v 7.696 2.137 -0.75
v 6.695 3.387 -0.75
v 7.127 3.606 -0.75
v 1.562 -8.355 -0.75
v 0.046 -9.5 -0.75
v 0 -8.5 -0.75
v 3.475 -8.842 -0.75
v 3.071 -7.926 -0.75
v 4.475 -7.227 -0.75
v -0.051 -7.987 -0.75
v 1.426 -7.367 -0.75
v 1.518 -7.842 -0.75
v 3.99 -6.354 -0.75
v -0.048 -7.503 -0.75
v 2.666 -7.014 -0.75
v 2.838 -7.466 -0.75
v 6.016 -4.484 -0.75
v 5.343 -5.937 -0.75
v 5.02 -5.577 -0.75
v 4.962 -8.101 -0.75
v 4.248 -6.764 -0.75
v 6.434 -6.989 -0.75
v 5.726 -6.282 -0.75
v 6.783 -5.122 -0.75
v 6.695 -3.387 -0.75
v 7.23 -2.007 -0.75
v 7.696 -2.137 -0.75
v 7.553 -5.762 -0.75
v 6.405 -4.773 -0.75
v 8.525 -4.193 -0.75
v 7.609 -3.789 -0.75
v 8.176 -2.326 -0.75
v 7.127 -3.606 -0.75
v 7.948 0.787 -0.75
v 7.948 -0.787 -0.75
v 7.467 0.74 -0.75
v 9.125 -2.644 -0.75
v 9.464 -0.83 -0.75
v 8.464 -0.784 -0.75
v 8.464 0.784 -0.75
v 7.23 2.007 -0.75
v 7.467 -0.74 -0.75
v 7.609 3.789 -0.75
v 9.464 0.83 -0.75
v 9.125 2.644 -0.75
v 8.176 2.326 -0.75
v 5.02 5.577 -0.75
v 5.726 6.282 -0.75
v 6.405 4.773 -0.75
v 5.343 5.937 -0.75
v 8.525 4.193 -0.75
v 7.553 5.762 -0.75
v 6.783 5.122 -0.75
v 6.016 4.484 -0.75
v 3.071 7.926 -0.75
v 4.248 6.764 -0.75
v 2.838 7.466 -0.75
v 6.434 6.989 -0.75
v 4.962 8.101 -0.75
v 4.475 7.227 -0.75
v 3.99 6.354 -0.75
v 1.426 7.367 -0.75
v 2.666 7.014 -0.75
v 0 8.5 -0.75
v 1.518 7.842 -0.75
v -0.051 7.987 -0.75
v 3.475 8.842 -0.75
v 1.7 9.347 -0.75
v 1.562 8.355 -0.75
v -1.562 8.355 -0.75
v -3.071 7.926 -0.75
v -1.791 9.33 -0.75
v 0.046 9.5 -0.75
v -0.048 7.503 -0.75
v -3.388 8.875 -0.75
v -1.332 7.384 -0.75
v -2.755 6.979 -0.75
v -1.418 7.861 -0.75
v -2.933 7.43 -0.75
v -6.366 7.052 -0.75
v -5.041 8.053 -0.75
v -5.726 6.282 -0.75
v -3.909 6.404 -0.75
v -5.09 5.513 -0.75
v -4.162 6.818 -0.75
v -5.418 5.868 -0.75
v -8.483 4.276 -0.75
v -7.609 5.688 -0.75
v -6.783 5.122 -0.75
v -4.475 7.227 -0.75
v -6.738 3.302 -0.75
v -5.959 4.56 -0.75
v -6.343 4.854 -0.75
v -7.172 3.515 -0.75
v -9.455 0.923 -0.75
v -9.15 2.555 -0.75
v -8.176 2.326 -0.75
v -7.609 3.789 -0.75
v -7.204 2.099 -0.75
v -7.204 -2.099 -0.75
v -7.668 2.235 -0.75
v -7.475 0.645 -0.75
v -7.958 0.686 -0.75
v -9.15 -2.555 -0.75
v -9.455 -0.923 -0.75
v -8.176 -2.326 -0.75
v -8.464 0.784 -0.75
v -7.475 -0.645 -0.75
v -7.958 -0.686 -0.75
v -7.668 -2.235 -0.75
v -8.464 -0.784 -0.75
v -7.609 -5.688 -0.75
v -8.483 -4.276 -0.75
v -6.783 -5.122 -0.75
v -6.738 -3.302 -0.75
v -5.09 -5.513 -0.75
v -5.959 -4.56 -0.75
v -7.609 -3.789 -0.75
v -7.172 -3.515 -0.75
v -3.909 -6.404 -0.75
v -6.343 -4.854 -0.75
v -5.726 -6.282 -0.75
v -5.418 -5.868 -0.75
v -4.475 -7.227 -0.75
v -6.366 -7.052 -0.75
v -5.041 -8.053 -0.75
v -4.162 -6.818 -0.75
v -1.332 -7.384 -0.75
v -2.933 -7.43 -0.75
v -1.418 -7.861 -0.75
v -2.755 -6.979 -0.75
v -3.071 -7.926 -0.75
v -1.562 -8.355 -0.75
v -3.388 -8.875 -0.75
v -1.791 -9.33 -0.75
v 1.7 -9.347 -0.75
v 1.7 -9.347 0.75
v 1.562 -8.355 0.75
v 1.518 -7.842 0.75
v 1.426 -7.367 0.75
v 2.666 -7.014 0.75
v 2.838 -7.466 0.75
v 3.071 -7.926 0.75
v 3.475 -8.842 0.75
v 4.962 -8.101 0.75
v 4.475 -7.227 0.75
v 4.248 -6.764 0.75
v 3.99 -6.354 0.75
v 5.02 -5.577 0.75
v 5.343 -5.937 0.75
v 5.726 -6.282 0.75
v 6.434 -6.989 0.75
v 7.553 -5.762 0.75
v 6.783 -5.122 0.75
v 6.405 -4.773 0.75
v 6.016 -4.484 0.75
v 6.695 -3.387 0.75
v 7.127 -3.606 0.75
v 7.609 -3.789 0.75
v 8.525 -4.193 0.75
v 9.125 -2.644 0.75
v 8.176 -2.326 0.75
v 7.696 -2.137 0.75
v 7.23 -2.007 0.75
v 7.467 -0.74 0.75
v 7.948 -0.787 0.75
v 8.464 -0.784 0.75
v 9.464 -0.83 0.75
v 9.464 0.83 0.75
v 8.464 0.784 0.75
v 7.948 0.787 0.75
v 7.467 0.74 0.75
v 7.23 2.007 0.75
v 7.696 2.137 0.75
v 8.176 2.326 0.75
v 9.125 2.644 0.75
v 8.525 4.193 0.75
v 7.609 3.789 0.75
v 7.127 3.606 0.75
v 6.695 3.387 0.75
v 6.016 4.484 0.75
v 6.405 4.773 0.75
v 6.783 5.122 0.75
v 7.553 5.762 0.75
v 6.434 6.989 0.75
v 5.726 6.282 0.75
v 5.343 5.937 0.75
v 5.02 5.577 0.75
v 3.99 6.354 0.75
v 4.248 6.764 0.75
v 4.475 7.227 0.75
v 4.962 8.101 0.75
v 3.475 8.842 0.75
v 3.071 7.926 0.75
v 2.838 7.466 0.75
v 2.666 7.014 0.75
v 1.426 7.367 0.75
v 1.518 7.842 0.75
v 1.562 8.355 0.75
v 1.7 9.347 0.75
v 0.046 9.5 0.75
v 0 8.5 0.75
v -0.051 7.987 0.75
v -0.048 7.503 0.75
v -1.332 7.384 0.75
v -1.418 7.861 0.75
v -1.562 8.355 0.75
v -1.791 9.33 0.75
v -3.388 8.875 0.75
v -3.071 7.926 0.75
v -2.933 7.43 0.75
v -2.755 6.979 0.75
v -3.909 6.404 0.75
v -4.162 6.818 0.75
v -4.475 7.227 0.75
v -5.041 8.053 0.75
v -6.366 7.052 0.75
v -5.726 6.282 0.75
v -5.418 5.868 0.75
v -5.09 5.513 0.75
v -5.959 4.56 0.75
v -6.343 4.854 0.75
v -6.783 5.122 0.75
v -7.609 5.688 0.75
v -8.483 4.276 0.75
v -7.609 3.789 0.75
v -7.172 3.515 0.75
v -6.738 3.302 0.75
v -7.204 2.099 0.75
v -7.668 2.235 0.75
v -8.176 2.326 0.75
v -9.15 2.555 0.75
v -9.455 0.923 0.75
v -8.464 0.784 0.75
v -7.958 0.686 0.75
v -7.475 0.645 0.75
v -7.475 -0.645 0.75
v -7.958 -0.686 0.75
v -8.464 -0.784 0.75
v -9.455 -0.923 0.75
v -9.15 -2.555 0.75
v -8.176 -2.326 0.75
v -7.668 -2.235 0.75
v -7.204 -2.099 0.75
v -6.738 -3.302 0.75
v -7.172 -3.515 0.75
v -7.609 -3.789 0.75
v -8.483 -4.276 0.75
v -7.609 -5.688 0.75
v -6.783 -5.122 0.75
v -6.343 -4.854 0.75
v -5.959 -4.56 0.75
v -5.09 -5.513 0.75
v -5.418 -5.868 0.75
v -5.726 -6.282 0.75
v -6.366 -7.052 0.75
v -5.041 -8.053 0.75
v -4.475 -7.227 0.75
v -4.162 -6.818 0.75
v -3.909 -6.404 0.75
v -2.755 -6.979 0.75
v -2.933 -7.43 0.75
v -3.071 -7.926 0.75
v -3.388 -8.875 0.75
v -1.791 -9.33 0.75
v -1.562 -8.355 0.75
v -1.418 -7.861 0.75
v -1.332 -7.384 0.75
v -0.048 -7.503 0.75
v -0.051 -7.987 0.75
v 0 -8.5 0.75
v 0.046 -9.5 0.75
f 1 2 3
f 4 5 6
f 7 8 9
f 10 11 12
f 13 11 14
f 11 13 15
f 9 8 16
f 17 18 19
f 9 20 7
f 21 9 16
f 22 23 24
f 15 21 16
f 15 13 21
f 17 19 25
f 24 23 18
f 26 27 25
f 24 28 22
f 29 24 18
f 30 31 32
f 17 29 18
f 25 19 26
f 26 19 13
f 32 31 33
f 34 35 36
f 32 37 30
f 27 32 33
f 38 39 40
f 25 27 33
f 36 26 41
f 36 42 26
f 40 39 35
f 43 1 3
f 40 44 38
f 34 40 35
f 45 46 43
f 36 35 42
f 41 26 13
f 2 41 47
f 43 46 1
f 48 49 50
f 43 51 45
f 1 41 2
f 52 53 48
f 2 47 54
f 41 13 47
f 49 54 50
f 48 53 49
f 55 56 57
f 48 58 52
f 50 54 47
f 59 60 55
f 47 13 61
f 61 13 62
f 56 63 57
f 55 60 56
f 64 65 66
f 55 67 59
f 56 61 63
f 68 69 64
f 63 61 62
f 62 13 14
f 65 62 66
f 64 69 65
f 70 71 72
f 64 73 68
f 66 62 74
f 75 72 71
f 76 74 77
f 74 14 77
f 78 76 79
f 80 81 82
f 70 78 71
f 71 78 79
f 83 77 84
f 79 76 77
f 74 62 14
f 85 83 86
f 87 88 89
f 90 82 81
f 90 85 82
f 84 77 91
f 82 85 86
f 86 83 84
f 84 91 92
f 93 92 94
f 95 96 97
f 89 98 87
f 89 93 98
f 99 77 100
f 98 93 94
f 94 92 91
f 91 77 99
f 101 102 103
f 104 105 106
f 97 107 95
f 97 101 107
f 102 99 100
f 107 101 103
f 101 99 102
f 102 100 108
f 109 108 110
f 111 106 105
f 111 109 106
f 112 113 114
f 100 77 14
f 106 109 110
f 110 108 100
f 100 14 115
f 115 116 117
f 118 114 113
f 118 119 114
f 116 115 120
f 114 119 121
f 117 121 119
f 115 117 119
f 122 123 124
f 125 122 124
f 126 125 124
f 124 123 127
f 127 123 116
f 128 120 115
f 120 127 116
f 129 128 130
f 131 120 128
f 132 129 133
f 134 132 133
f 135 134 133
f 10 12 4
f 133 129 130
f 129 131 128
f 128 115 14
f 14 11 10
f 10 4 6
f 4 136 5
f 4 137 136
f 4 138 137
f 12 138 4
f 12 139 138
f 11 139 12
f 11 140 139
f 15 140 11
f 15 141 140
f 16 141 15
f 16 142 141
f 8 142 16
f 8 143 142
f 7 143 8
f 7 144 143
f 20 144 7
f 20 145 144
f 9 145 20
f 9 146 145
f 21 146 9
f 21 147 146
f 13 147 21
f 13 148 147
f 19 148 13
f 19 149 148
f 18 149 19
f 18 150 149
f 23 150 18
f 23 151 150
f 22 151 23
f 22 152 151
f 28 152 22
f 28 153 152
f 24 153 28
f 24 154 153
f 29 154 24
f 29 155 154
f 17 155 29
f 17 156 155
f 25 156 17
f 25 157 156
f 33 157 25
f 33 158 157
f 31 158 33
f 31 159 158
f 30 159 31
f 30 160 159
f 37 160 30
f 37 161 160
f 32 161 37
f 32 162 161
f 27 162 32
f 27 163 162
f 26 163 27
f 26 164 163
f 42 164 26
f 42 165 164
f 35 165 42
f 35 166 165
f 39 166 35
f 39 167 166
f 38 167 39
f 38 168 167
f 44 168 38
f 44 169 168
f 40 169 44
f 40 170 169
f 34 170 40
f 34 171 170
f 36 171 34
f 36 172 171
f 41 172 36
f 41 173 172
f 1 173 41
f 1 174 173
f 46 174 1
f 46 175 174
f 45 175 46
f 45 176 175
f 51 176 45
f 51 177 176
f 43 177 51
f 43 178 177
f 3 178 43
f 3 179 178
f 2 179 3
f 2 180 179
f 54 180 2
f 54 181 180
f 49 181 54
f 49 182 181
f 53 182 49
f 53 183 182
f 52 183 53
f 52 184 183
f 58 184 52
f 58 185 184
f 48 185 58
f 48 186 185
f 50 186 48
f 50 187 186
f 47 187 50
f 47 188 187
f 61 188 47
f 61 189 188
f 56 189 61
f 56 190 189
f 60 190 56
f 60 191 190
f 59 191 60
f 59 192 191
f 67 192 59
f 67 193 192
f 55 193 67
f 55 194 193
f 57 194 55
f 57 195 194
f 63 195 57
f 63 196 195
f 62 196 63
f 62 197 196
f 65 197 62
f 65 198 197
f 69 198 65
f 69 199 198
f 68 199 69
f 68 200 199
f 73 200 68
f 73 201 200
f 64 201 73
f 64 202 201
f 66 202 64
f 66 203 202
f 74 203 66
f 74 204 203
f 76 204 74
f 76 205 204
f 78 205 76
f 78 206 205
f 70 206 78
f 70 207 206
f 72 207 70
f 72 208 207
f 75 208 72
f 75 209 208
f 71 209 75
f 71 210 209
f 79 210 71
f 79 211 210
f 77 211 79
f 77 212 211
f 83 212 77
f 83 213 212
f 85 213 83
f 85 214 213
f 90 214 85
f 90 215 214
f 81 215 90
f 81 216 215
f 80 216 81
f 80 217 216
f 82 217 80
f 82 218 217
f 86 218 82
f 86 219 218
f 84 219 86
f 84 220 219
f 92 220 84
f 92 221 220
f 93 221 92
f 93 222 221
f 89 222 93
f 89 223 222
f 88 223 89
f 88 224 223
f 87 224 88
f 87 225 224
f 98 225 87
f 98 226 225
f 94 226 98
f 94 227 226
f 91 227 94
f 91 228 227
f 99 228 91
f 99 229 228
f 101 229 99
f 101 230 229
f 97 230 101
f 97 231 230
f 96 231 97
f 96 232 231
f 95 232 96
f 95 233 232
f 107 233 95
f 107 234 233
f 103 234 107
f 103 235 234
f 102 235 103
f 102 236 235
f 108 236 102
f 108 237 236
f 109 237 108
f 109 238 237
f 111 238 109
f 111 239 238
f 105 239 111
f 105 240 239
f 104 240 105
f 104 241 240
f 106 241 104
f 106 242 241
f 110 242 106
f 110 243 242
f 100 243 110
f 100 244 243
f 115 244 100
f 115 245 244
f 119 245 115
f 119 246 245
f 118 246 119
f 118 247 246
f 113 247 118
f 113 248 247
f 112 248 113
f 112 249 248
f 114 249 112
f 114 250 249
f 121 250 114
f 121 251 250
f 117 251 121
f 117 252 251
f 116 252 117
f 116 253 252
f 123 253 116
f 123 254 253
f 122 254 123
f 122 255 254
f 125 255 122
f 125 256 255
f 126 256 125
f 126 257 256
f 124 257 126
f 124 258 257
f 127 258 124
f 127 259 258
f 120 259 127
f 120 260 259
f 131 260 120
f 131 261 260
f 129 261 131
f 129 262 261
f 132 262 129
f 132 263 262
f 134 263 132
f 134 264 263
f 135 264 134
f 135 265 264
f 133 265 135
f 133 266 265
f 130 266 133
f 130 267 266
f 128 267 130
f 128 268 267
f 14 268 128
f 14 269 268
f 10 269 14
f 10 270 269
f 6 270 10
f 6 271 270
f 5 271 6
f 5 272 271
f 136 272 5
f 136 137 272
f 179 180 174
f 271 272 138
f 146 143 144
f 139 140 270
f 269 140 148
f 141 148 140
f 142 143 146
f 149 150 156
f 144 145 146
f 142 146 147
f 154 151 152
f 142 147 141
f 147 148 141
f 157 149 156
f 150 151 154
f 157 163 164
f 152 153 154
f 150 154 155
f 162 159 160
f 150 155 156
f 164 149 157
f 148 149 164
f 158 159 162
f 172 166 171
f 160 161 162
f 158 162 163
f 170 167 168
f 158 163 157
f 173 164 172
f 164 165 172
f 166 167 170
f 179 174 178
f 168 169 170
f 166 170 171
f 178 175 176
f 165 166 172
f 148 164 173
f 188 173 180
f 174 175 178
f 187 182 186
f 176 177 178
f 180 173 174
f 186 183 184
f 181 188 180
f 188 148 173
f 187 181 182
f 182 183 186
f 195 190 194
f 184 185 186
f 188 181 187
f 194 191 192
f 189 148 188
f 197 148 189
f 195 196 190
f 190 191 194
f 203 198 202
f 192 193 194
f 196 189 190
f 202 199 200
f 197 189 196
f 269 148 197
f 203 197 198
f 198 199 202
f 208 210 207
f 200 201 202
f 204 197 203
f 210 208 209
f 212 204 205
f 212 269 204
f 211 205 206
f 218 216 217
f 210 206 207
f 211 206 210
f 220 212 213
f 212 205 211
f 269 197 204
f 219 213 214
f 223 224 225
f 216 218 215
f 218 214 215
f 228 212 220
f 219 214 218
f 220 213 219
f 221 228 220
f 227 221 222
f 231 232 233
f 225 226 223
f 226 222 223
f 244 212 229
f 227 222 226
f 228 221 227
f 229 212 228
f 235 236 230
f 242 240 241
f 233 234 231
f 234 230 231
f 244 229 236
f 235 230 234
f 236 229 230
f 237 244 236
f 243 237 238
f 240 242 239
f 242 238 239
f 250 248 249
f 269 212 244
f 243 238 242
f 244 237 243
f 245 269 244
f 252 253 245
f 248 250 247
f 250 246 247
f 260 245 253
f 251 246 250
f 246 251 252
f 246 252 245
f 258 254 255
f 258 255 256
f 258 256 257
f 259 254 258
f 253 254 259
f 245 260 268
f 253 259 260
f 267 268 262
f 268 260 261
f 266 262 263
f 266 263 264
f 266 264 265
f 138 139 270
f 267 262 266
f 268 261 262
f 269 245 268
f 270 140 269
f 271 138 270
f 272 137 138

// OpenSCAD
// file: module.scad
// Rounded Cube (or Rectangular Prism)
module rounded_cube(size, radius, facets=24) {
    r = radius;
    original_size = size - 2 * r * [1,1,1];
    if (min(original_size) > 0) {
        minkowski() {
            cube(original_size, center=true);
            sphere(r, $fn=facets);
        }
    } else {
        echo("Error: Size too small for rounding radius.");
    }
}

// Rounded Cylinder
module rounded_cylinder(height, radius, rounding_radius, facets=24) {
    r = rounding_radius;
    original_h = height - 2 * r;
    original_r = radius - r;
    if (original_h > 0 && original_r > 0) {
        minkowski() {
            cylinder(h=original_h, r=original_r, center=true);
            sphere(r, $fn=facets);
        }
    } else {
        echo("Error: Dimensions too small for rounding radius.");
    }
}

// Rounded Pyramid
module rounded_pyramid(base, height, radius, facets=24) {
    r = radius;
    original_base = [base[0] - 2 * r, base[1] - 2 * r];
    original_height = height - 2 * r;
    if (original_base[0] > 0 && original_base[1] > 0 && original_height > 0) {
        minkowski() {
            linear_extrude(height=original_height, scale=0) 
                square(original_base, center=true);
            sphere(r, $fn=facets);
        }
    } else {
        echo("Error: Dimensions too small for rounding radius.");
    }
}

// Rounded Cone
module rounded_cone(base_radius, height, rounding_radius, facets=24) {
    r = rounding_radius;
    original_h = height - 2 * r;
    original_r = base_radius - r;
    if (original_h > 0 && original_r > 0) {
        minkowski() {
            cylinder(h=original_h, r1=original_r, r2=0);
            sphere(r, $fn=facets);
        }
    } else {
        echo("Error: Dimensions too small for rounding radius.");
    }
}


// Gears module 

// Copyright 2010 D1plo1d
// LGPL 2.1


//test_involute_curve();
//test_gears();
//demo_3d_gears();

// Geometry Sources:
//	http://www.cartertools.com/involute.html
//	gears.py (inkscape extension: /usr/share/inkscape/extensions/gears.py)
// Usage:
//	Diametral pitch: Number of teeth per unit length.
//	Circular pitch: Length of the arc from one tooth to the next
//	Clearance: Radial distance between top of tooth on one gear to bottom of gap on another.

function pitch_circular2diameter(number_of_teeth,circular_pitch) = number_of_teeth * circular_pitch / 180;
function pitch_diametral2diameter(number_of_teeth,diametral_pitch) = number_of_teeth / diametral_pitch;

module gear(number_of_teeth,
		circular_pitch=false, diametral_pitch=false,
		pressure_angle=20, clearance = 0,
		verbose=false)
{
	if(verbose) {
		echo("gear arguments:");
		echo(str("  number_of_teeth: ", number_of_teeth));
		echo(str("  circular_pitch: ", circular_pitch));
		echo(str("  diametral_pitch: ", diametral_pitch));
		echo(str("  pressure_angle: ", pressure_angle));
		echo(str("  clearance: ", clearance));
	}
	if (circular_pitch==false && diametral_pitch==false) echo("MCAD ERROR: gear module needs either a diametral_pitch or circular_pitch");
	if(verbose) echo("gear calculations:");

	//Convert diametrial pitch to our native circular pitch
	circular_pitch = (circular_pitch!=false?circular_pitch:180/diametral_pitch);

	// Pitch diameter: Diameter of pitch circle.
	pitch_diameter  =  pitch_circular2diameter(number_of_teeth,circular_pitch);
	if(verbose) echo (str("  pitch_diameter: ", pitch_diameter));
	pitch_radius = pitch_diameter/2;

	// Base Circle
	base_diameter = pitch_diameter*cos(pressure_angle);
	if(verbose) echo (str("  base_diameter: ", base_diameter));
	base_radius = base_diameter/2;

	// Diametrial pitch: Number of teeth per unit length.
	pitch_diametrial = number_of_teeth / pitch_diameter;
	if(verbose) echo (str("  pitch_diametrial: ", pitch_diametrial));

	// Addendum: Radial distance from pitch circle to outside circle.
	addendum = 1/pitch_diametrial;
	if(verbose) echo (str("  addendum: ", addendum));

	//Outer Circle
	outer_radius = pitch_radius+addendum;
	outer_diameter = outer_radius*2;
	if(verbose) echo (str("  outer_diameter: ", outer_diameter));

	// Dedendum: Radial distance from pitch circle to root diameter
	dedendum = addendum + clearance;
	if(verbose) echo (str("  dedendum: ", dedendum));

	// Root diameter: Diameter of bottom of tooth spaces.
	root_radius = pitch_radius-dedendum;
	root_diameter = root_radius * 2;
	if(verbose) echo (str("  root_diameter: ", root_diameter));

	half_thick_angle = 360 / (4 * number_of_teeth);
	if(verbose) echo (str("  half_thick_angle: ", half_thick_angle));

	union()
	{
		rotate(half_thick_angle) circle($fn=number_of_teeth*2, r=root_radius*1.001);

		for (i= [1:number_of_teeth])
		//for (i = [0])
		{
			rotate([0,0,i*360/number_of_teeth])
			{
				involute_gear_tooth(
					pitch_radius = pitch_radius,
					root_radius = root_radius,
					base_radius = base_radius,
					outer_radius = outer_radius,
					half_thick_angle = half_thick_angle);
			}
		}
	}
}


module involute_gear_tooth(
					pitch_radius,
					root_radius,
					base_radius,
					outer_radius,
					half_thick_angle
					)
{
	pitch_to_base_angle  = involute_intersect_angle( base_radius, pitch_radius );

	outer_to_base_angle = involute_intersect_angle( base_radius, outer_radius );

	base1 = 0 - pitch_to_base_angle - half_thick_angle;
	pitch1 = 0 - half_thick_angle;
	outer1 = outer_to_base_angle - pitch_to_base_angle - half_thick_angle;

	b1 = polar_to_cartesian([ base1, base_radius ]);
	p1 = polar_to_cartesian([ pitch1, pitch_radius ]);
	o1 = polar_to_cartesian([ outer1, outer_radius ]);

	b2 = polar_to_cartesian([ -base1, base_radius ]);
	p2 = polar_to_cartesian([ -pitch1, pitch_radius ]);
	o2 = polar_to_cartesian([ -outer1, outer_radius ]);

	// ( root_radius > base_radius variables )
		pitch_to_root_angle = pitch_to_base_angle - involute_intersect_angle(base_radius, root_radius );
		root1 = pitch1 - pitch_to_root_angle;
		root2 = -pitch1 + pitch_to_root_angle;
		r1_t =  polar_to_cartesian([ root1, root_radius ]);
		r2_t =  polar_to_cartesian([ -root1, root_radius ]);

	// ( else )
		r1_f =  polar_to_cartesian([ base1, root_radius ]);
		r2_f =  polar_to_cartesian([ -base1, root_radius ]);

	if (root_radius > base_radius)
	{
		//echo("true");
		polygon( points = [
			r1_t,p1,o1,o2,p2,r2_t
		], convexity = 3);
	}
	else
	{
		polygon( points = [
			r1_f, b1,p1,o1,o2,p2,b2,r2_f
		], convexity = 3);
	}

}

// Mathematical Functions
//===============

// Finds the angle of the involute about the base radius at the given distance (radius) from it's center.
//source: http://www.mathhelpforum.com/math-help/geometry/136011-circle-involute-solving-y-any-given-x.html

function involute_intersect_angle(base_radius, radius) = sqrt( pow(radius/base_radius,2) - 1);



// Polar coord [angle, radius] to cartesian coord [x,y]

function polar_to_cartesian(polar) = [
	polar[1]*cos(polar[0]),
	polar[1]*sin(polar[0])
];


// Test Cases
//===============

module test_gears()
{
	gear(number_of_teeth=51,circular_pitch=200);
	translate([0, 50])gear(number_of_teeth=17,circular_pitch=200);
	translate([-50,0]) gear(number_of_teeth=17,diametral_pitch=1);
}


module demo_3d_gears()
{
	// //double helical gear
	// translate([50,0])
	// {
	// linear_extrude(height = 10, center = true, convexity = 10, twist = -45)
	//  gear(number_of_teeth=17,diametral_pitch=1);
	// translate([0,0,10])
    //     rotate([0,180,180/17])
    //     linear_extrude(height = 10, center = true, convexity = 10, twist = 45)
	//  gear(number_of_teeth=17,diametral_pitch=1);
	// }

	//spur gear
	translate([0,-50]) linear_extrude(height = 10, center = true, convexity = 10, twist = 0)
	 gear(number_of_teeth=17,diametral_pitch=1);

}

module test_involute_curve()
{
	for (i=[0,1,2,3,4,5,6,7,8,9,10,11,12,13,14,15])
	{
		translate(polar_to_cartesian([involute_intersect_angle( 0.1,i) , i ])) circle($fn=15, r=0.5);
	}
}
// main file
/*
    Simple Gear
*/
include <module.scad>
gear_teeth = 17;
gear_pitch = 1;
gear_height = 1.5;
linear_extrude(height = gear_height, center = true)
    gear(number_of_teeth = gear_teeth, diametral_pitch = gear_pitch);
